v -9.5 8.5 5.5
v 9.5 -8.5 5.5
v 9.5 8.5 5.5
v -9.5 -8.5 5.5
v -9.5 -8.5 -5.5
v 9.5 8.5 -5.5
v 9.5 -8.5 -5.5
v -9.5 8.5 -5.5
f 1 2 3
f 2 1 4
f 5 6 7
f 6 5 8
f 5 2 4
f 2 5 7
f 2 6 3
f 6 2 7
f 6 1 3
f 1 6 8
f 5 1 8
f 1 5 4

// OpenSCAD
// 19 mm long, 17 mm wide, 11 mm high rectangular solid box
// Centered at origin (0,0,0)

// Main box body
cube([19, 17, 11], center = true);
